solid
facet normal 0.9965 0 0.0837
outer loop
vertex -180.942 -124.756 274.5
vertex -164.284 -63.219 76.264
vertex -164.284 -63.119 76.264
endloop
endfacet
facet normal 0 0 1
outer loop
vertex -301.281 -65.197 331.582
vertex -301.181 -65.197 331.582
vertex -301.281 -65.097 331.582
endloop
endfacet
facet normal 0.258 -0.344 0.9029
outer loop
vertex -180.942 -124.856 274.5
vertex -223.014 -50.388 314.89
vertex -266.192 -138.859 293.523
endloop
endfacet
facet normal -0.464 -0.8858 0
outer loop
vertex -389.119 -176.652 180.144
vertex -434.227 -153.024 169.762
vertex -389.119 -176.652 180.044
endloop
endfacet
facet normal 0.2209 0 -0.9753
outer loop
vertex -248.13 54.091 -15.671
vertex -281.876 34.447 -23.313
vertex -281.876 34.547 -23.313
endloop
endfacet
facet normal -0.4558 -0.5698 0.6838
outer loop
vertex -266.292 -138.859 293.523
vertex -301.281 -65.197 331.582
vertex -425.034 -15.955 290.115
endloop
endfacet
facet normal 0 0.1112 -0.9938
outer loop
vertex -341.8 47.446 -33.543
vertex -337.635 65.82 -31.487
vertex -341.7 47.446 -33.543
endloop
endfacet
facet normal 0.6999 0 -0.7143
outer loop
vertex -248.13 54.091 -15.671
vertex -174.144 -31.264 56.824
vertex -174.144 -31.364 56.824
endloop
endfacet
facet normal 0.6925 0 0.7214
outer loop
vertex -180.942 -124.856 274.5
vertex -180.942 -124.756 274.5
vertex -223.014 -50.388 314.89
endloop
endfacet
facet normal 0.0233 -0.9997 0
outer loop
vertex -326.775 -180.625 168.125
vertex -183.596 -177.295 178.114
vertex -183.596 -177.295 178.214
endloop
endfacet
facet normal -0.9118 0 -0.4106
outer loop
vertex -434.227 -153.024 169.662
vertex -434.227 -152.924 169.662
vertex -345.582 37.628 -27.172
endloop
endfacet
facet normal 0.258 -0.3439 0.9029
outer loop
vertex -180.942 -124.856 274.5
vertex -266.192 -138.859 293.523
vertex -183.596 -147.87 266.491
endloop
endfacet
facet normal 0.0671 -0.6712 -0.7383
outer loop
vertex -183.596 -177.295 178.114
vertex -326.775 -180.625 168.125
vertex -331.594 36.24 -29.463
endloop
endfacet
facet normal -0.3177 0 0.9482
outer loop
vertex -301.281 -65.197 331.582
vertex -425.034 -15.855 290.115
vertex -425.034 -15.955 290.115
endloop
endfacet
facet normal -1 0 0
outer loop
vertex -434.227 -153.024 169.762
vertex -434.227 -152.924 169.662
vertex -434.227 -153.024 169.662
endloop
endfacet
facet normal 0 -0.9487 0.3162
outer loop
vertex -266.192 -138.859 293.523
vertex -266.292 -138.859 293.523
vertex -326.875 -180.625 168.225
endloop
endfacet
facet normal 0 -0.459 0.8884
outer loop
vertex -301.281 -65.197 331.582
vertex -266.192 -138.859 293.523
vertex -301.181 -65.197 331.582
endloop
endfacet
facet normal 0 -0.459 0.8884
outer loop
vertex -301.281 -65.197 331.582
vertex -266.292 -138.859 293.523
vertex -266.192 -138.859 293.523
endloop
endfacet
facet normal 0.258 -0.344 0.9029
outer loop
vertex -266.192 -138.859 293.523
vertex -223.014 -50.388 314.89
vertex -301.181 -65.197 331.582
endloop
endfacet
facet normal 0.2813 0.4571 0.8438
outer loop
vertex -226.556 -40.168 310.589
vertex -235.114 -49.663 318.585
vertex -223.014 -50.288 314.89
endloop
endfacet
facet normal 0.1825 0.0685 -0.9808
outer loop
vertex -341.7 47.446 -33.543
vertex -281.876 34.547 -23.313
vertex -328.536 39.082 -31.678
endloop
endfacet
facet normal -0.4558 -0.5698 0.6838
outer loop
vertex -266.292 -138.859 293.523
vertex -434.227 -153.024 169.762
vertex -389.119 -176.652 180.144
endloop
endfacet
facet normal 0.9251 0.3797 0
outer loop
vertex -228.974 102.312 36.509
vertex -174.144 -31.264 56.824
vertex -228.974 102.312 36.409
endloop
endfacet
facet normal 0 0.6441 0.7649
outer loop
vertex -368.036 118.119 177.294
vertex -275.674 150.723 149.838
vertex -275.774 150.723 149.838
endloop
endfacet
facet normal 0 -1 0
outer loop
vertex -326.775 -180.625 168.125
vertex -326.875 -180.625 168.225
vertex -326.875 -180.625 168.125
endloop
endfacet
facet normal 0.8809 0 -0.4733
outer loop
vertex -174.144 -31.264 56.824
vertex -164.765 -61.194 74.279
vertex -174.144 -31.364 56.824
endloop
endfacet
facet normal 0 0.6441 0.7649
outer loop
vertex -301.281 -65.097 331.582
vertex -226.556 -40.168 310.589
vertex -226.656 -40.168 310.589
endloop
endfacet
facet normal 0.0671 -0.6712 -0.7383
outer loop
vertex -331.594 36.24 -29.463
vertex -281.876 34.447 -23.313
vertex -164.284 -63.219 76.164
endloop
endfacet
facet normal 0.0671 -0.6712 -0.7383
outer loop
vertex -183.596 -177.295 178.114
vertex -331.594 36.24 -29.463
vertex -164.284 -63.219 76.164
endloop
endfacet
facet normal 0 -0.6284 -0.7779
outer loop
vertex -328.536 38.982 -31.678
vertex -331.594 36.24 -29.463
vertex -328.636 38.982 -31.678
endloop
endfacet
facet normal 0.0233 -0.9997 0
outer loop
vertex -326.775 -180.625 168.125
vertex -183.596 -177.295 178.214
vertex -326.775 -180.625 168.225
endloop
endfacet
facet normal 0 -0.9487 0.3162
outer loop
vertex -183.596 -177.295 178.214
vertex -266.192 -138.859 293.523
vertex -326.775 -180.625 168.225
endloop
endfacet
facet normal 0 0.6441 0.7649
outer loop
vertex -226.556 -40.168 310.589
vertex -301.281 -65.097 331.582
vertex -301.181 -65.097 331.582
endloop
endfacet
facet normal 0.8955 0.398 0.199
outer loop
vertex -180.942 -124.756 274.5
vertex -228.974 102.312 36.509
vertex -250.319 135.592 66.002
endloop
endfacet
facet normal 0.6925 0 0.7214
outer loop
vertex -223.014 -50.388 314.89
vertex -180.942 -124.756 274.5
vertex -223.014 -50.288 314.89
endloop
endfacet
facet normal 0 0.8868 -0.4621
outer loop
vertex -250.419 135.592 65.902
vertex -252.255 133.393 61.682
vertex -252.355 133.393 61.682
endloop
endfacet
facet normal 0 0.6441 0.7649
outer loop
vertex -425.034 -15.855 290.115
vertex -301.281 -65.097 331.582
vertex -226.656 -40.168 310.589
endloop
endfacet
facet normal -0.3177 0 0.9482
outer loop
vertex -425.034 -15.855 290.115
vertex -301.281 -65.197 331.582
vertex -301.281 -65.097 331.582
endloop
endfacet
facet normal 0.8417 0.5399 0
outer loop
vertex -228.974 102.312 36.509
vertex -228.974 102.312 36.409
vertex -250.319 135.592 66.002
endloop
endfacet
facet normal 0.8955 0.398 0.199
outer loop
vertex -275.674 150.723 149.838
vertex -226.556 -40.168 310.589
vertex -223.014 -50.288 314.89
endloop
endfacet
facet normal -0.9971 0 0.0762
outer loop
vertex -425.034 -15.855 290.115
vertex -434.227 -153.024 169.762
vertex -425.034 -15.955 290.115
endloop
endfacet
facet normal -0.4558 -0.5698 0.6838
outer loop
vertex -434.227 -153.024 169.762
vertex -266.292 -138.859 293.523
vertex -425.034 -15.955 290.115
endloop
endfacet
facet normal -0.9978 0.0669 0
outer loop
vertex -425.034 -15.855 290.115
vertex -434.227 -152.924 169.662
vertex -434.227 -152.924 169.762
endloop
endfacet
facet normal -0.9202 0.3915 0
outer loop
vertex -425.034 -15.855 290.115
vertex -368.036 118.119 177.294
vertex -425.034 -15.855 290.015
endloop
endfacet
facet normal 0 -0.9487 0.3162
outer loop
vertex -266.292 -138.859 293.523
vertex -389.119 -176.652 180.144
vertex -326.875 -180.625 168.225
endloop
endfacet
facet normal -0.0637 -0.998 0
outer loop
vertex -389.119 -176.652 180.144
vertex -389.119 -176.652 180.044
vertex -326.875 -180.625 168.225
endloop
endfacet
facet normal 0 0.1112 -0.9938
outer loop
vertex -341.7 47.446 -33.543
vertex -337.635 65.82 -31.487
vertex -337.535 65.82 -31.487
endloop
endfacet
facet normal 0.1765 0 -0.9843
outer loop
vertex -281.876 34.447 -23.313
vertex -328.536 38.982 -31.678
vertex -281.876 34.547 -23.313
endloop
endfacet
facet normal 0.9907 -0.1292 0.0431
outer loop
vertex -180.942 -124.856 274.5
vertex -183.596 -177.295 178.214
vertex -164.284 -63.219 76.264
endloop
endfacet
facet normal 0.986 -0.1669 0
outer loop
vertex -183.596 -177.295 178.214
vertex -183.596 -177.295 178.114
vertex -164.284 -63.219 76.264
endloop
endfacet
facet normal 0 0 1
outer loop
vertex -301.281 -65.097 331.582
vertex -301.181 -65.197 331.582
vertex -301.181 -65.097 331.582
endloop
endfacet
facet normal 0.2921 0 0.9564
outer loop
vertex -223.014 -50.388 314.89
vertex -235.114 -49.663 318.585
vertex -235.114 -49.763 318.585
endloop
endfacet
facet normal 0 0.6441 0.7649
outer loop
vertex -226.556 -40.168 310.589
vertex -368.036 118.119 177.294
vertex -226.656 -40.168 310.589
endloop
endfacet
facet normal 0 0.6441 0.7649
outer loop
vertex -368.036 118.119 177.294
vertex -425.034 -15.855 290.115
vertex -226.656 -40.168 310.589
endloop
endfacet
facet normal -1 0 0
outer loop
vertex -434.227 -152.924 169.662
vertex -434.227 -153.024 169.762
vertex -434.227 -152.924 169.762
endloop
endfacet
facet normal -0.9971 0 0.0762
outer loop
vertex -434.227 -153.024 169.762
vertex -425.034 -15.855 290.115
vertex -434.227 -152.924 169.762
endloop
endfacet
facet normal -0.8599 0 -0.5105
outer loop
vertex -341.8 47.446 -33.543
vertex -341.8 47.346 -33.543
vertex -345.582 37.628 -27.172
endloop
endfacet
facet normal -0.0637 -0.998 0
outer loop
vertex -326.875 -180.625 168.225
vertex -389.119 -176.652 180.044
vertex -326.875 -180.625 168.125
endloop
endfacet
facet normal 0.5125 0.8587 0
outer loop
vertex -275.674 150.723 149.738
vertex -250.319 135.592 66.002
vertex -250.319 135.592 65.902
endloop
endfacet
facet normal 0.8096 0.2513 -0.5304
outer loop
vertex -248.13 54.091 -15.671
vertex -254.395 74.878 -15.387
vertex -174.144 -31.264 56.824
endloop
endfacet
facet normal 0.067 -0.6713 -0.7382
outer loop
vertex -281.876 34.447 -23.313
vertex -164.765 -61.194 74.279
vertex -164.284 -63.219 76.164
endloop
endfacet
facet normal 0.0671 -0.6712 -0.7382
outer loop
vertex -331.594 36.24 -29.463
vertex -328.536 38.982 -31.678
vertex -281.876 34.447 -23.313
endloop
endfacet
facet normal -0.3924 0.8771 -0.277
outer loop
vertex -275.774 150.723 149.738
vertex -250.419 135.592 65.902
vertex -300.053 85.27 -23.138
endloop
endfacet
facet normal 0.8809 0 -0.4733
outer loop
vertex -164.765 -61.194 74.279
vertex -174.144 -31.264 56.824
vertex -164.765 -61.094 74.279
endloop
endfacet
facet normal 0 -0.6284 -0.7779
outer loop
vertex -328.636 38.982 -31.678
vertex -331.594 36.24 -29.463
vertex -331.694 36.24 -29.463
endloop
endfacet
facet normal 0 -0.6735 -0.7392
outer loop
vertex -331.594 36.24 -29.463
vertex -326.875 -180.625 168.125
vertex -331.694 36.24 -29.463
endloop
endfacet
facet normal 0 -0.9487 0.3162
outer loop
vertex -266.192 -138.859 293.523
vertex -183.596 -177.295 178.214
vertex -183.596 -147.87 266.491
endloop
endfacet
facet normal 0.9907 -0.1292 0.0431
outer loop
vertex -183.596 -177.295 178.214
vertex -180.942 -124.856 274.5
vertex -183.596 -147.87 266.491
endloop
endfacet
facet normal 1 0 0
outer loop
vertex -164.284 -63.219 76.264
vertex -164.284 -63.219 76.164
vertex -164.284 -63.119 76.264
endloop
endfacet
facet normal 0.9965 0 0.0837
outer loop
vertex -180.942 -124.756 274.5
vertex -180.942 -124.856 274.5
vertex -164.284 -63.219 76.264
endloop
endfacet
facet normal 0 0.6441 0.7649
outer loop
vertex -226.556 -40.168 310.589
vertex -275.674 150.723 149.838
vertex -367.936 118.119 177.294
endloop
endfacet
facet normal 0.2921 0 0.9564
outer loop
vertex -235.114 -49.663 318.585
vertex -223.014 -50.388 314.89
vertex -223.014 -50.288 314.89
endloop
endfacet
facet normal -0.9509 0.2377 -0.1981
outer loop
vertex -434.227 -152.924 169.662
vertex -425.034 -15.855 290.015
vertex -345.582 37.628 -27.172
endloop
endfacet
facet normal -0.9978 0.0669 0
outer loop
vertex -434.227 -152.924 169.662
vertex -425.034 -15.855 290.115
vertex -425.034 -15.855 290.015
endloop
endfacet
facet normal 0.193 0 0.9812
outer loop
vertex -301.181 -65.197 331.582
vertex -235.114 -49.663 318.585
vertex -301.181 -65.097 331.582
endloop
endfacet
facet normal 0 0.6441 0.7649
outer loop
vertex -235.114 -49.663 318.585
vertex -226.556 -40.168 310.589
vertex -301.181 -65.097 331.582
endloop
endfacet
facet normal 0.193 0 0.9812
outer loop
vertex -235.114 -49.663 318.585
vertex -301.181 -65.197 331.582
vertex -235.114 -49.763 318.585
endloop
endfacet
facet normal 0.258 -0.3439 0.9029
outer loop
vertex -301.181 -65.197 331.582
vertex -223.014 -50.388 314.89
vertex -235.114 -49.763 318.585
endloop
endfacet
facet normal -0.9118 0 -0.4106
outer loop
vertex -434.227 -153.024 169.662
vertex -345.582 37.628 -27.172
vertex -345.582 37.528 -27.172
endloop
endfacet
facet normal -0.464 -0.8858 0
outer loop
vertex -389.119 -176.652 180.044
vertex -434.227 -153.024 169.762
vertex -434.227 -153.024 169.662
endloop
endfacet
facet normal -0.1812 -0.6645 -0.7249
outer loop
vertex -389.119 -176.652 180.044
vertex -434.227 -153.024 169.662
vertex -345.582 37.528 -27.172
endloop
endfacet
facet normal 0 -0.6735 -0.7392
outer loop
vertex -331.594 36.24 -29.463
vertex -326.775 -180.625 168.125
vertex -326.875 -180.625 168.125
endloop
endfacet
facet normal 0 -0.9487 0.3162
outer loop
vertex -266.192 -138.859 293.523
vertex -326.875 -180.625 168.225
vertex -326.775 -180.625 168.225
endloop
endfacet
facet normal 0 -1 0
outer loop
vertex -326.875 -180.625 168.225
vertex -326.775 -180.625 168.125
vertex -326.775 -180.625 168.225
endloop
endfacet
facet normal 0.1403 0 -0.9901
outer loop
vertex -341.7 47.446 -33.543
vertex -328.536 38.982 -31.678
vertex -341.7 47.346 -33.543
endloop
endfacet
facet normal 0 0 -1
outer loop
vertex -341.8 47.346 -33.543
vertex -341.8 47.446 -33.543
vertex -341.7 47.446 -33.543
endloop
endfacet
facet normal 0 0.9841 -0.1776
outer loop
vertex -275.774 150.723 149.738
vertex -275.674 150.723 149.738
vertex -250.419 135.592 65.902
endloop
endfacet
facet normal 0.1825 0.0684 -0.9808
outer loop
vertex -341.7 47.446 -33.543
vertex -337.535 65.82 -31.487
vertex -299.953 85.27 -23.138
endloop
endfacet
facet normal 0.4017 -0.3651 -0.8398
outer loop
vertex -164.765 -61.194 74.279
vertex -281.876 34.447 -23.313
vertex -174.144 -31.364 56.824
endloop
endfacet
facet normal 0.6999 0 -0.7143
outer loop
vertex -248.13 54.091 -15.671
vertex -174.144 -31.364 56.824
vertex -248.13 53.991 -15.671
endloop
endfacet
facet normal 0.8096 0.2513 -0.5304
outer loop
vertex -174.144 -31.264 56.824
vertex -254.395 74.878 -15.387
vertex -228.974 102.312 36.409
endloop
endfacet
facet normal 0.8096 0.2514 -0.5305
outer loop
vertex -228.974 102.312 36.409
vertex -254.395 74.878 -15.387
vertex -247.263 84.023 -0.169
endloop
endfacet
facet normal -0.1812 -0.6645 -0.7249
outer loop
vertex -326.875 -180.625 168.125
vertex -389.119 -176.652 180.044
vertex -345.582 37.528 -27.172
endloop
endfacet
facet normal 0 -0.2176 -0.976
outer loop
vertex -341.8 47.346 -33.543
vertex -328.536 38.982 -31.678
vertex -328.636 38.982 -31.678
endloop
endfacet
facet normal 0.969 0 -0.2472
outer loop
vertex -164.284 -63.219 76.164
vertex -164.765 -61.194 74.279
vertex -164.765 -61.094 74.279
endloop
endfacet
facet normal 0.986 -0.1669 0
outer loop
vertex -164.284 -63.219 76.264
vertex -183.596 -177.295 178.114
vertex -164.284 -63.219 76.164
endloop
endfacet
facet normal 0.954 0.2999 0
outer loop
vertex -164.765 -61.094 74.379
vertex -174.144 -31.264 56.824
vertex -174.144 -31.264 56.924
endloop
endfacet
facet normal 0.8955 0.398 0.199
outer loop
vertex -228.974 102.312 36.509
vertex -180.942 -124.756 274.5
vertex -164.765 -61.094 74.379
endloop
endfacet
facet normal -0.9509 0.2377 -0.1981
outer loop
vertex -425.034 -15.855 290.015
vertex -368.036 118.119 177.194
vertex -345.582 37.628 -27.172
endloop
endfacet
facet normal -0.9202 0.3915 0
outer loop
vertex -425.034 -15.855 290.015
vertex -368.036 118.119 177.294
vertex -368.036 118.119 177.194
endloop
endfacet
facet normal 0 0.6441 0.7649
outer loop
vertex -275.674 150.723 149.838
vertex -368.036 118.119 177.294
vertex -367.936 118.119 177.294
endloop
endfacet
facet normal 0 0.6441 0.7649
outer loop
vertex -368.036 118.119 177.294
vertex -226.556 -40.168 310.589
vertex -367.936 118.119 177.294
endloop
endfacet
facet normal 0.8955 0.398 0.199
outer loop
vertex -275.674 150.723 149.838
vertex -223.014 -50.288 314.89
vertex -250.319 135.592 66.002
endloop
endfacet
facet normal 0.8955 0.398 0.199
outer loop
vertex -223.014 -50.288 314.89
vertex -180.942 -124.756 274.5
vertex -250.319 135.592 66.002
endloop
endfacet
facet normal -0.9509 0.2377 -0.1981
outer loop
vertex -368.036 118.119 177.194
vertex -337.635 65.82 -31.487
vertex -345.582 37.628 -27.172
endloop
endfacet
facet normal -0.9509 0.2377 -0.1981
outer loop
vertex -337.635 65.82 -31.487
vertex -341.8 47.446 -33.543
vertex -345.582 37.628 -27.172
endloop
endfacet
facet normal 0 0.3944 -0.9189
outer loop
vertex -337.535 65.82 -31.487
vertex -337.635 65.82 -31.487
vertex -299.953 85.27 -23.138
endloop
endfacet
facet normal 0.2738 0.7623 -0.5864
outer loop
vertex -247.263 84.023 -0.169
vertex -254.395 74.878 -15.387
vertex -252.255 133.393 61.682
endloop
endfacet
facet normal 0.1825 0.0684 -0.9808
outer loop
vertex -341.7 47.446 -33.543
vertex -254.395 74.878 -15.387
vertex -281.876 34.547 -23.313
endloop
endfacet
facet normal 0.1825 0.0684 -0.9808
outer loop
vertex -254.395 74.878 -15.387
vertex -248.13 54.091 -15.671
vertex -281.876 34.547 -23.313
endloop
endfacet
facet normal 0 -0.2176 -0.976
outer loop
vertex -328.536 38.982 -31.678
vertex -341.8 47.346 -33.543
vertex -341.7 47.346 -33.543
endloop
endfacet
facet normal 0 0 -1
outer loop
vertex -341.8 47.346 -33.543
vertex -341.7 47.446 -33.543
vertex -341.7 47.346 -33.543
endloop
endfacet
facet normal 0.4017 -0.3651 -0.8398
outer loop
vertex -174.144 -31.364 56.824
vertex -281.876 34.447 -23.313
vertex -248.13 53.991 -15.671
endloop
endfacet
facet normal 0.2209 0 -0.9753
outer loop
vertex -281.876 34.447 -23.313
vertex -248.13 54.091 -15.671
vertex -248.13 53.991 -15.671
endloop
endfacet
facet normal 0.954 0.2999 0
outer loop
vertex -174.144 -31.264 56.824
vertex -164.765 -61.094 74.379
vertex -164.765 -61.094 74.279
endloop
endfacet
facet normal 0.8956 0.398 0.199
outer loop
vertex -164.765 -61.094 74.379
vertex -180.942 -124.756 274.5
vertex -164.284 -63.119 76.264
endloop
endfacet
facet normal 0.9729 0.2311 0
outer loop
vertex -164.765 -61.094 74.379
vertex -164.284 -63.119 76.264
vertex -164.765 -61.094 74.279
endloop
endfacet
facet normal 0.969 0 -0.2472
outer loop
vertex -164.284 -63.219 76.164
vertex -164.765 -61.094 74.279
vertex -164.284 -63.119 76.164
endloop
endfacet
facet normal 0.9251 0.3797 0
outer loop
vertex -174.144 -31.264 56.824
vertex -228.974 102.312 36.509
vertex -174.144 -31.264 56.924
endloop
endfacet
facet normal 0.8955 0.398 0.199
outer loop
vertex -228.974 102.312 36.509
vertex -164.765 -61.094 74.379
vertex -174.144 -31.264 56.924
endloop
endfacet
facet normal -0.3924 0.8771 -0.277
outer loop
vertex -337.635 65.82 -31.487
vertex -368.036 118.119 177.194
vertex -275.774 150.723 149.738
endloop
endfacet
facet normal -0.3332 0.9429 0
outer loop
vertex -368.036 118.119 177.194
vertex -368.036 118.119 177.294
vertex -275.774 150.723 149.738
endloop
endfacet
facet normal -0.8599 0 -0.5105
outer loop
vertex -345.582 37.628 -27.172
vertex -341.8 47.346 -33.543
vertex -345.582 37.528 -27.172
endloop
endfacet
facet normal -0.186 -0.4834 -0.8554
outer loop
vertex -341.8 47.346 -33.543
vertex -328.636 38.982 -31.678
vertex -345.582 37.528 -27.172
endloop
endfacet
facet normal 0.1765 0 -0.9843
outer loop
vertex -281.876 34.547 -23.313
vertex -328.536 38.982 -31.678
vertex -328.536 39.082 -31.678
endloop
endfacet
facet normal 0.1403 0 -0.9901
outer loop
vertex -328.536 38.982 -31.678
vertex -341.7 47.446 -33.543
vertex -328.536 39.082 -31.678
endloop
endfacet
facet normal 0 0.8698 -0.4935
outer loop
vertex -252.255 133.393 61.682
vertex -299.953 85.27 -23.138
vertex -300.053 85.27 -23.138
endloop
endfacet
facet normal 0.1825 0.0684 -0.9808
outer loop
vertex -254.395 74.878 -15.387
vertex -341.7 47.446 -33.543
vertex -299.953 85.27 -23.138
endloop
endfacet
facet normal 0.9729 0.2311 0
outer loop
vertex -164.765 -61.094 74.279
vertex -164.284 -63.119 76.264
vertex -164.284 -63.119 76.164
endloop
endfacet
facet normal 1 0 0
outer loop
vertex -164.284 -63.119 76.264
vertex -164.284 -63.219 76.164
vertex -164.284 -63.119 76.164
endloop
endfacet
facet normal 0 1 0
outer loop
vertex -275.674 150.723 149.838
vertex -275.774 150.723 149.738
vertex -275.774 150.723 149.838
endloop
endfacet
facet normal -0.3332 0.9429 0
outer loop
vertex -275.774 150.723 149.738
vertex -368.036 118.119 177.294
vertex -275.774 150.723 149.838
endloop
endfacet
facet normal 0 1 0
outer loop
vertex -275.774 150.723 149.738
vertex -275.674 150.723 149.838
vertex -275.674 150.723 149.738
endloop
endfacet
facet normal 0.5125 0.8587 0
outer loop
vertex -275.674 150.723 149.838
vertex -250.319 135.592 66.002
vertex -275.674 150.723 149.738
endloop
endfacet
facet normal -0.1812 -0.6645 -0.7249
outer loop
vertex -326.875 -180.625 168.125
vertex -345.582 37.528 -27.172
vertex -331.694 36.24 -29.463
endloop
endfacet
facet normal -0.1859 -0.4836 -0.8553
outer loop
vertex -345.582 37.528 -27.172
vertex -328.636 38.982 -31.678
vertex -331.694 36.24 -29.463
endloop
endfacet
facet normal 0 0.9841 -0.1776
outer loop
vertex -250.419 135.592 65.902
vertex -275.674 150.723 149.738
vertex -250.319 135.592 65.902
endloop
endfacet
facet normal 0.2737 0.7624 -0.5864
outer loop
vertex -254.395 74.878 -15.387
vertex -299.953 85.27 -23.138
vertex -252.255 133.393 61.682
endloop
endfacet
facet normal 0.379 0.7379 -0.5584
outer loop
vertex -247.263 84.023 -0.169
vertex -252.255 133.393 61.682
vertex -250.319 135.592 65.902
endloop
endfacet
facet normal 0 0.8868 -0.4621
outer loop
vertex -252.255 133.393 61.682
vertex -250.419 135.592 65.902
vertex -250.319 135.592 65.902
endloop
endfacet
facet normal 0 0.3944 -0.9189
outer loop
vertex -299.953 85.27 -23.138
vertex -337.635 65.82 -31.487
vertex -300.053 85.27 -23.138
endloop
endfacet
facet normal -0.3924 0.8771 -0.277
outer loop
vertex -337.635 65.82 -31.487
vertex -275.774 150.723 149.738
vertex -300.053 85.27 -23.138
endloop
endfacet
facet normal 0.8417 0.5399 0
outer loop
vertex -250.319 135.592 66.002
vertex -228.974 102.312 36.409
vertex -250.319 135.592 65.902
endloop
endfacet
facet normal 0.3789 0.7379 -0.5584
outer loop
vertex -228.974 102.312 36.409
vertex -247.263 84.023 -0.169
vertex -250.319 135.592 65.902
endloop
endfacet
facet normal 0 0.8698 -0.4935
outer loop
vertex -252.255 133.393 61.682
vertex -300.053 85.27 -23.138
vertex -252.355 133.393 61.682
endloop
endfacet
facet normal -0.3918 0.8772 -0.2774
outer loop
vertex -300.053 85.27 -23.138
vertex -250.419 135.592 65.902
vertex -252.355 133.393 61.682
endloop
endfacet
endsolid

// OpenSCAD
hull(){ translate([-181.042047532,-124.855575868,274.400365631])cube(0.1,0.1,0.1);
translate([-183.695652174,-147.869565217,266.391304348])cube(0.1,0.1,0.1);
translate([-164.383561644,-63.2191780822,76.1643835616])cube(0.1,0.1,0.1);
translate([-183.695652174,-177.295247725,178.114256825])cube(0.1,0.1,0.1);
translate([-226.65615142,-40.2681388013,310.488958991])cube(0.1,0.1,0.1);
translate([-235.214146658,-49.7631408177,318.484750162])cube(0.1,0.1,0.1);
translate([-223.114323259,-50.3876478318,314.789750329])cube(0.1,0.1,0.1);
translate([-275.77445955,150.623467796,149.738132382])cube(0.1,0.1,0.1);
translate([-368.035733448,118.019100762,177.194441464])cube(0.1,0.1,0.1);
translate([-326.875,-180.625,168.125])cube(0.1,0.1,0.1);
translate([-250.418994413,135.491980537,65.9015137863])cube(0.1,0.1,0.1);
translate([-337.635290772,65.7200341248,-31.4865633442])cube(0.1,0.1,0.1);
translate([-229.073953306,102.212077736,36.4086344072])cube(0.1,0.1,0.1);
translate([-328.63561418,38.9818631492,-31.6776586974])cube(0.1,0.1,0.1);
translate([-331.694214876,36.2396694215,-29.4628099174])cube(0.1,0.1,0.1);
translate([-341.800290324,47.3460443303,-33.5433532466])cube(0.1,0.1,0.1);
translate([-345.58210252,37.5282363162,-27.1720243267])cube(0.1,0.1,0.1);
translate([-266.291946309,-138.859060403,293.422818792])cube(0.1,0.1,0.1);
translate([-301.281471917,-65.1969012266,331.481601033])cube(0.1,0.1,0.1);
translate([-434.227208976,-153.023842917,169.661991585])cube(0.1,0.1,0.1);
translate([-389.118942731,-176.651982379,180.044052863])cube(0.1,0.1,0.1);
translate([-425.03358209,-15.9552238806,290.014925373])cube(0.1,0.1,0.1);
translate([-300.053098351,85.169641842,-23.1375781694])cube(0.1,0.1,0.1);
translate([-252.355484752,133.293126991,61.6818388712])cube(0.1,0.1,0.1);
translate([-254.49461937,74.7776006377,-15.3866082104])cube(0.1,0.1,0.1);
translate([-247.363002851,83.9230281913,-0.16946468166])cube(0.1,0.1,0.1);
translate([-174.243747519,-31.3636363636,56.8241365621])cube(0.1,0.1,0.1);
translate([-164.864864865,-61.1936936937,74.2792792793])cube(0.1,0.1,0.1);
translate([-248.230150754,53.9909547739,-15.6713567839])cube(0.1,0.1,0.1);
translate([-281.97578426,34.4468904788,-23.3131535498])cube(0.1,0.1,0.1); }
